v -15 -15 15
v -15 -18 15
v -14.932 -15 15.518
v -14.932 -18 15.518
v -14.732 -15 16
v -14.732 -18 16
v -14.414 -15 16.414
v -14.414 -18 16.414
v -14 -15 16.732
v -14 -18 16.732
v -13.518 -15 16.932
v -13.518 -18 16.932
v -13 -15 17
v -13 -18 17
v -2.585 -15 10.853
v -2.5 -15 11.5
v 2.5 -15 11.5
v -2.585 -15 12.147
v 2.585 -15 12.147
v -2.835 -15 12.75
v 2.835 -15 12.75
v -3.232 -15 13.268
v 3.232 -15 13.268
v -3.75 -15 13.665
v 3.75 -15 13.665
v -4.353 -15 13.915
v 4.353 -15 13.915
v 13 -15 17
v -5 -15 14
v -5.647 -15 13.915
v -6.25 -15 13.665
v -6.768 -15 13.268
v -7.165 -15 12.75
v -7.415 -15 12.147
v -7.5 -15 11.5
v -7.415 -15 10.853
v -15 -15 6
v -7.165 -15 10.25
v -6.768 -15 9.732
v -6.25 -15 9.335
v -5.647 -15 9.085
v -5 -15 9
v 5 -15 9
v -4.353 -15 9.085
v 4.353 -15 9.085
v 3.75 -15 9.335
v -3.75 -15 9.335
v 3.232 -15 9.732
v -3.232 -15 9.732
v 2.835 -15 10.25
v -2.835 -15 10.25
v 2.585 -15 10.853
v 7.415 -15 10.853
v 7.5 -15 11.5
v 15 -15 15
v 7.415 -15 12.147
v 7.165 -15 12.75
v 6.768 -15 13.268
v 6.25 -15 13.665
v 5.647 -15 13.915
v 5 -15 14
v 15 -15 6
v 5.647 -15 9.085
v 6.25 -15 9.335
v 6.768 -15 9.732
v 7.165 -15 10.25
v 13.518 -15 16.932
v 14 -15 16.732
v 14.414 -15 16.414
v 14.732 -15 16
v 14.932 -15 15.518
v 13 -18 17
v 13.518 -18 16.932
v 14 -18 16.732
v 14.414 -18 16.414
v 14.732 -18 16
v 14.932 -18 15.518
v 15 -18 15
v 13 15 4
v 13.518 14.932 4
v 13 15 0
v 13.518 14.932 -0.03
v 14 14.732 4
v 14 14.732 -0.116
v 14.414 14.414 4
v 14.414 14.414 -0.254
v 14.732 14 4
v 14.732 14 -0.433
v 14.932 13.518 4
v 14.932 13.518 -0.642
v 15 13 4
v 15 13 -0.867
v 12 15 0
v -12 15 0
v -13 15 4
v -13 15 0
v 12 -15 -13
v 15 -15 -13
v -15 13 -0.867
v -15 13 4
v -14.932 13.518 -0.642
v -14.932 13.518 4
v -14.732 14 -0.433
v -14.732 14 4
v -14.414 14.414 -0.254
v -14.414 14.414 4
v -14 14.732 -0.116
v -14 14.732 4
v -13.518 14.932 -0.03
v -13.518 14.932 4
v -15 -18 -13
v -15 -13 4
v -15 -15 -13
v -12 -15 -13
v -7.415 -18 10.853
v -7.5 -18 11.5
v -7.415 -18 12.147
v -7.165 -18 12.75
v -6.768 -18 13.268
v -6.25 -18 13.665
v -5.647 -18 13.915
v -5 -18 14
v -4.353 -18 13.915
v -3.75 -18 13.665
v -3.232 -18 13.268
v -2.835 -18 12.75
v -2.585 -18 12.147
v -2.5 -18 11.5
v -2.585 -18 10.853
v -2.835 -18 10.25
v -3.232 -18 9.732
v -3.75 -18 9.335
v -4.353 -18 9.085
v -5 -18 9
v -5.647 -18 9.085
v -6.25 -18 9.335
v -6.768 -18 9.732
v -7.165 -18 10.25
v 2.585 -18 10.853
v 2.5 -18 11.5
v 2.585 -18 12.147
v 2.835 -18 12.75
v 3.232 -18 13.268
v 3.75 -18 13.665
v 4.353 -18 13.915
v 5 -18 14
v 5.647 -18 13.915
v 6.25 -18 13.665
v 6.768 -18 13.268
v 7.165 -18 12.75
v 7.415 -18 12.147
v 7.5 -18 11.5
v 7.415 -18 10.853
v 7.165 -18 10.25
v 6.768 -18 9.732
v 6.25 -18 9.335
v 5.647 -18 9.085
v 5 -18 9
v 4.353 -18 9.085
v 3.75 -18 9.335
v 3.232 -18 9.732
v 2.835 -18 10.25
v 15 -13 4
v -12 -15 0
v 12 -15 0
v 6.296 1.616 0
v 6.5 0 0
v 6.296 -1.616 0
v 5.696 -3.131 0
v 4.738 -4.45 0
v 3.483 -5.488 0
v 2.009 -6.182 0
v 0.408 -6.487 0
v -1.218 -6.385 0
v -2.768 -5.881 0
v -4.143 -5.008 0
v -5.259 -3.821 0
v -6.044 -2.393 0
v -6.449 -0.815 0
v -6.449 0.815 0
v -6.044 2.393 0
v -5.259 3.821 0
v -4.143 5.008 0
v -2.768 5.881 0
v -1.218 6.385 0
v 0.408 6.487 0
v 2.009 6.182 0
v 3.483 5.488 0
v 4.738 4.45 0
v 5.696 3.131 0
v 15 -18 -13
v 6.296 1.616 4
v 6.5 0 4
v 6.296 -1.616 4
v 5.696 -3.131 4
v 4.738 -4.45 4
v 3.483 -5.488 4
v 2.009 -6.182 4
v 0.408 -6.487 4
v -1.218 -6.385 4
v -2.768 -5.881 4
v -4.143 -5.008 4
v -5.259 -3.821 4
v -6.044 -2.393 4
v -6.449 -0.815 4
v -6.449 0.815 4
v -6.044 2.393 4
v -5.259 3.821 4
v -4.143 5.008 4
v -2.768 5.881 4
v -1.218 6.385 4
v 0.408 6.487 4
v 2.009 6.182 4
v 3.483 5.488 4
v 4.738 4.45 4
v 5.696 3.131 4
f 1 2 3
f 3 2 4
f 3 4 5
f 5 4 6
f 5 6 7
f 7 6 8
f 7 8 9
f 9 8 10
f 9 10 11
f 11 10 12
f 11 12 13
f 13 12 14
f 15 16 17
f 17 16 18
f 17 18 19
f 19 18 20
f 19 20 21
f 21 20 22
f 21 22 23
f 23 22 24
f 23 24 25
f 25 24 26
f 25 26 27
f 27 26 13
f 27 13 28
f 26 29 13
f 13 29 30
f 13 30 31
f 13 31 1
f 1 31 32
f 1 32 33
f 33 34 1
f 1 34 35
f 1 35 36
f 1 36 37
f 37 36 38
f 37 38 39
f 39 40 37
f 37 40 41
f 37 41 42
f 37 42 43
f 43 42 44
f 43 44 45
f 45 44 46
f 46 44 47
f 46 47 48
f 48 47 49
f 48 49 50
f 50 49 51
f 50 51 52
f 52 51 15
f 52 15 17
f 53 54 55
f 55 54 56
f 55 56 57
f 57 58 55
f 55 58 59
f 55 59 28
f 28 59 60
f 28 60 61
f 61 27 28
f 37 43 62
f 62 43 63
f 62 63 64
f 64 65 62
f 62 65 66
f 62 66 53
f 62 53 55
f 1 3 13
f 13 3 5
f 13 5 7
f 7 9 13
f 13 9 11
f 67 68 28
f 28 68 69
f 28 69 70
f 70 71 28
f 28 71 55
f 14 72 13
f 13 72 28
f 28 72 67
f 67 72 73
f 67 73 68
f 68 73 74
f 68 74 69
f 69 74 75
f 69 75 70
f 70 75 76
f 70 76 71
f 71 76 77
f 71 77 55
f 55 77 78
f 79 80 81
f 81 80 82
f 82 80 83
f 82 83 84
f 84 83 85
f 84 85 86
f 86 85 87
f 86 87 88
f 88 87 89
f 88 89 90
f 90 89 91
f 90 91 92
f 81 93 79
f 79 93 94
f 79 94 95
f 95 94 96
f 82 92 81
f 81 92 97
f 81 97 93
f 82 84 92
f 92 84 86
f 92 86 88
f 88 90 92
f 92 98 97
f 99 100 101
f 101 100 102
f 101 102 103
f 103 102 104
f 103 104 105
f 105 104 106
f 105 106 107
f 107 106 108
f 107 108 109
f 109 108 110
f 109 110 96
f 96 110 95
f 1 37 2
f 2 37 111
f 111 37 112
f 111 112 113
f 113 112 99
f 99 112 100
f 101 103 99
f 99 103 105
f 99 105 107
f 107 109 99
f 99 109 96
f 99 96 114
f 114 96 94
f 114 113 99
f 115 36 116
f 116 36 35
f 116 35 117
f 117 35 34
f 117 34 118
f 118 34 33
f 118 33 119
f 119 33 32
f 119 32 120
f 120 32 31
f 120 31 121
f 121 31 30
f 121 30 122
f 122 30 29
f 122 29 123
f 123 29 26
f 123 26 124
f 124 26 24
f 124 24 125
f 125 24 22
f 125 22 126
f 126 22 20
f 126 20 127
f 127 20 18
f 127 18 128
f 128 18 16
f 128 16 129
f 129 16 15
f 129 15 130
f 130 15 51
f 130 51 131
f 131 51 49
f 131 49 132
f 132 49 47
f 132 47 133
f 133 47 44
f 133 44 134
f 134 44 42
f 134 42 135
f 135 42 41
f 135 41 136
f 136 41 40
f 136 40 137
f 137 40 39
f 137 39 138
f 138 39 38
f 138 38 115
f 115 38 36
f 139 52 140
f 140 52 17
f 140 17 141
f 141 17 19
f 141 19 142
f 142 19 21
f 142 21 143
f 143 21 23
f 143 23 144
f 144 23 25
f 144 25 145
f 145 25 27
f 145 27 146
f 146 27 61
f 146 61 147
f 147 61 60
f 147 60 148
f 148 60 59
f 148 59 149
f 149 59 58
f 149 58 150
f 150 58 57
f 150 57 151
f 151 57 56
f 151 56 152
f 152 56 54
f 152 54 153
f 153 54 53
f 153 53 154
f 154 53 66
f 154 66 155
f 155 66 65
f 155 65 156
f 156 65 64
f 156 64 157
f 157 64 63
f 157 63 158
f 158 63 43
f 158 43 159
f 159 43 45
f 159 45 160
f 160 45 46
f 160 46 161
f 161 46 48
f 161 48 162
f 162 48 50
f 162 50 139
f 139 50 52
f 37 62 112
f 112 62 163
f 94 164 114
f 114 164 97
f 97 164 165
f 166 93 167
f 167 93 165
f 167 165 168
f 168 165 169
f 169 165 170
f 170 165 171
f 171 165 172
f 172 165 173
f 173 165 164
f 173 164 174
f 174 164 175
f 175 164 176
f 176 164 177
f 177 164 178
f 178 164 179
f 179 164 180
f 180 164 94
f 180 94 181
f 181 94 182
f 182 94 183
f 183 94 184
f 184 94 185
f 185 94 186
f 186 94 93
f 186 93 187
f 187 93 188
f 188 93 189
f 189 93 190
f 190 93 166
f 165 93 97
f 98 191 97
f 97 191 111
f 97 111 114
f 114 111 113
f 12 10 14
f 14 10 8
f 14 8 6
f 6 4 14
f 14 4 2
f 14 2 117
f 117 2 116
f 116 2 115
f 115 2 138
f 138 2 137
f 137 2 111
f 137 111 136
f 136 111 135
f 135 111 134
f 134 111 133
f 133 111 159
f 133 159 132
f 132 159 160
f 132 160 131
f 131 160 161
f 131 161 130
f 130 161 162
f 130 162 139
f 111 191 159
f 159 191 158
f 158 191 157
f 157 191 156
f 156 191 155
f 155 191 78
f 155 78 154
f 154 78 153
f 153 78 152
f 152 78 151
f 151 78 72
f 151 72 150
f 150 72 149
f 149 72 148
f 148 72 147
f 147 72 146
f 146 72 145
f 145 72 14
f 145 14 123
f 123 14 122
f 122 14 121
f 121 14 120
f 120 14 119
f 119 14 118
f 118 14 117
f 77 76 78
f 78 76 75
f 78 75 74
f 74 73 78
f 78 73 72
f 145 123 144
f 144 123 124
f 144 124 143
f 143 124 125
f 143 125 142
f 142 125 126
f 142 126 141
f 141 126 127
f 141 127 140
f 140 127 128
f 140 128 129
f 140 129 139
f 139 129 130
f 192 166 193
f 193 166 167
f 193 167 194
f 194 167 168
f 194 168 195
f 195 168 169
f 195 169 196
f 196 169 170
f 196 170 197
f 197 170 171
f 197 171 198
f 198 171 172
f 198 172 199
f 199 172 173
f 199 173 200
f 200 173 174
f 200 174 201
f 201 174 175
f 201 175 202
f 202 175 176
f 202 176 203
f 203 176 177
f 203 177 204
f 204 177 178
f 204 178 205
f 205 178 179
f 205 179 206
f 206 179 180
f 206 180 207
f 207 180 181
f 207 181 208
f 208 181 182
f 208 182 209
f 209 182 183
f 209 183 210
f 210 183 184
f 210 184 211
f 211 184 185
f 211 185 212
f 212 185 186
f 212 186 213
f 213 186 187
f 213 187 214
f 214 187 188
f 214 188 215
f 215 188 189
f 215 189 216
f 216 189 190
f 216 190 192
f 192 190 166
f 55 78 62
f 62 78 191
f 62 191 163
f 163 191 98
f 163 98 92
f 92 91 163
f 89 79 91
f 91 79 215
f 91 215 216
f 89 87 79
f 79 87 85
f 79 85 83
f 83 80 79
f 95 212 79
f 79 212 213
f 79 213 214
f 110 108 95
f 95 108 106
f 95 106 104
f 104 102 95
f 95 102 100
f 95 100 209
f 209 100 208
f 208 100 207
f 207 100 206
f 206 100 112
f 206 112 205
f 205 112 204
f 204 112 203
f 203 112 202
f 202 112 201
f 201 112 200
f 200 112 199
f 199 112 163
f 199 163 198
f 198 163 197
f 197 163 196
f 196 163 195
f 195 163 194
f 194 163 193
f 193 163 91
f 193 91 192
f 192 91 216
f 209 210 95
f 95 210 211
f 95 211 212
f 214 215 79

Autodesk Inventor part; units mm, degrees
ref_plane "YZ Plane" through (0, 0, 0) normal (1, 0, 0) x (0, 1, 0)
ref_plane "XZ Plane" through (0, 0, 0) normal (0, 1, 0) x (-1, 0, 0)
sketch "Sketch1" plane through (0, 0, 0) normal (0, 0, 1) x (1, 0, 0)
  line L0 (-15, 15) -> (15, 15)
  line L1 (15, 15) -> (15, -15)
  line L2 (15, -15) -> (-15, -15)
  line L3 (-15, -15) -> (-15, 15)
  line L4 (-15, 15) -> (15, -15) construction
  line L5 (15, 15) -> (-15, -15) construction
  circle A0 centre (0, 0) radius 6.5
  dimension "d0" = 30
  dimension "d1" = 30
  dimension "d2" = 13
extrude "Extrusion1" add sketch "Sketch1" along normal blind 4
sketch "Sketch2" plane through (-15, -15, 0) normal (0, -1, 0) x (1, 0, 0)
  line L0 (0, 17) -> (30, 17)
  line L1 (30, 17) -> (30, -13)
  line L2 (30, -13) -> (0, -13)
  line L3 (0, -13) -> (0, 17)
  line L4 (0, 17) -> (30, -13) construction
  line L5 (30, 17) -> (0, -13) construction
  point P0 (15, 0)
  point P1 (15, 2)
  dimension "d5" = 30
  dimension "d6" = 30
extrude "Extrusion2" add sketch "Sketch2" along normal blind 3
ref_plane "Work Plane1" through (0, 15, 4) normal (1, 0, 0) x (0, 0, -1)
sketch "Sketch3" plane through (15, 15, 4) normal (1, 0, 0) x (0, 0, -1)
  line L0 (-13, -33) -> (17, -33) projected
  line L1 (0.0291, -33) -> (0.0291, 0)
  line L2 (4, 0) -> (4, -30) projected
  line L3 (0.0291, 0) -> (4, 0)
  line L4 (4, -30) -> (17, -30) projected
  line L5 (4, 0) -> (17, -30)
  line L6 (17, -30) -> (17, -33) projected
  line L7 (17, -30) -> (17, -33)
  line L8 (17, -33) -> (0.0291, -33)
  point P0 (4, -15)
extrude "Extrusion3" add sketch "Sketch3" against normal blind 3 contours L4 L2 L5
mirror "Mirror1" about plane through (0, 15, 4) normal (1, 0, 0) of "Extrusion3"
chamfer "Chamfer1" distance 2 angle 45 1 edges at (0, -15, 4)
sketch "Sketch4" plane through (-15, -15, 0) normal (0, 1, 0) x (1, 0, 0)
  line L0 (0, -17) -> (30, -17) projected
  line L1 (0, -6) -> (0, -17) projected
  point P0 (15, 0)
  point P1 (10, -11.5)
  point P2 (20, -11.5)
  dimension "d15" = 5.5
  dimension "d16" = 10
  dimension "d25" = 5.5
  dimension "d26" = 20
hole "Hole1" at (-5, -15, 11.5) at (5, -15, 11.5) direction (0, -1, 0) diameter 5 end through all
fillet "Fillet1" radius 2 4 edges at (-15, 15, 2) (15, 15, 2) (15, -16.5, 17) (-15, -16.5, 17)
properties part number "Eletronica - plug12V"
